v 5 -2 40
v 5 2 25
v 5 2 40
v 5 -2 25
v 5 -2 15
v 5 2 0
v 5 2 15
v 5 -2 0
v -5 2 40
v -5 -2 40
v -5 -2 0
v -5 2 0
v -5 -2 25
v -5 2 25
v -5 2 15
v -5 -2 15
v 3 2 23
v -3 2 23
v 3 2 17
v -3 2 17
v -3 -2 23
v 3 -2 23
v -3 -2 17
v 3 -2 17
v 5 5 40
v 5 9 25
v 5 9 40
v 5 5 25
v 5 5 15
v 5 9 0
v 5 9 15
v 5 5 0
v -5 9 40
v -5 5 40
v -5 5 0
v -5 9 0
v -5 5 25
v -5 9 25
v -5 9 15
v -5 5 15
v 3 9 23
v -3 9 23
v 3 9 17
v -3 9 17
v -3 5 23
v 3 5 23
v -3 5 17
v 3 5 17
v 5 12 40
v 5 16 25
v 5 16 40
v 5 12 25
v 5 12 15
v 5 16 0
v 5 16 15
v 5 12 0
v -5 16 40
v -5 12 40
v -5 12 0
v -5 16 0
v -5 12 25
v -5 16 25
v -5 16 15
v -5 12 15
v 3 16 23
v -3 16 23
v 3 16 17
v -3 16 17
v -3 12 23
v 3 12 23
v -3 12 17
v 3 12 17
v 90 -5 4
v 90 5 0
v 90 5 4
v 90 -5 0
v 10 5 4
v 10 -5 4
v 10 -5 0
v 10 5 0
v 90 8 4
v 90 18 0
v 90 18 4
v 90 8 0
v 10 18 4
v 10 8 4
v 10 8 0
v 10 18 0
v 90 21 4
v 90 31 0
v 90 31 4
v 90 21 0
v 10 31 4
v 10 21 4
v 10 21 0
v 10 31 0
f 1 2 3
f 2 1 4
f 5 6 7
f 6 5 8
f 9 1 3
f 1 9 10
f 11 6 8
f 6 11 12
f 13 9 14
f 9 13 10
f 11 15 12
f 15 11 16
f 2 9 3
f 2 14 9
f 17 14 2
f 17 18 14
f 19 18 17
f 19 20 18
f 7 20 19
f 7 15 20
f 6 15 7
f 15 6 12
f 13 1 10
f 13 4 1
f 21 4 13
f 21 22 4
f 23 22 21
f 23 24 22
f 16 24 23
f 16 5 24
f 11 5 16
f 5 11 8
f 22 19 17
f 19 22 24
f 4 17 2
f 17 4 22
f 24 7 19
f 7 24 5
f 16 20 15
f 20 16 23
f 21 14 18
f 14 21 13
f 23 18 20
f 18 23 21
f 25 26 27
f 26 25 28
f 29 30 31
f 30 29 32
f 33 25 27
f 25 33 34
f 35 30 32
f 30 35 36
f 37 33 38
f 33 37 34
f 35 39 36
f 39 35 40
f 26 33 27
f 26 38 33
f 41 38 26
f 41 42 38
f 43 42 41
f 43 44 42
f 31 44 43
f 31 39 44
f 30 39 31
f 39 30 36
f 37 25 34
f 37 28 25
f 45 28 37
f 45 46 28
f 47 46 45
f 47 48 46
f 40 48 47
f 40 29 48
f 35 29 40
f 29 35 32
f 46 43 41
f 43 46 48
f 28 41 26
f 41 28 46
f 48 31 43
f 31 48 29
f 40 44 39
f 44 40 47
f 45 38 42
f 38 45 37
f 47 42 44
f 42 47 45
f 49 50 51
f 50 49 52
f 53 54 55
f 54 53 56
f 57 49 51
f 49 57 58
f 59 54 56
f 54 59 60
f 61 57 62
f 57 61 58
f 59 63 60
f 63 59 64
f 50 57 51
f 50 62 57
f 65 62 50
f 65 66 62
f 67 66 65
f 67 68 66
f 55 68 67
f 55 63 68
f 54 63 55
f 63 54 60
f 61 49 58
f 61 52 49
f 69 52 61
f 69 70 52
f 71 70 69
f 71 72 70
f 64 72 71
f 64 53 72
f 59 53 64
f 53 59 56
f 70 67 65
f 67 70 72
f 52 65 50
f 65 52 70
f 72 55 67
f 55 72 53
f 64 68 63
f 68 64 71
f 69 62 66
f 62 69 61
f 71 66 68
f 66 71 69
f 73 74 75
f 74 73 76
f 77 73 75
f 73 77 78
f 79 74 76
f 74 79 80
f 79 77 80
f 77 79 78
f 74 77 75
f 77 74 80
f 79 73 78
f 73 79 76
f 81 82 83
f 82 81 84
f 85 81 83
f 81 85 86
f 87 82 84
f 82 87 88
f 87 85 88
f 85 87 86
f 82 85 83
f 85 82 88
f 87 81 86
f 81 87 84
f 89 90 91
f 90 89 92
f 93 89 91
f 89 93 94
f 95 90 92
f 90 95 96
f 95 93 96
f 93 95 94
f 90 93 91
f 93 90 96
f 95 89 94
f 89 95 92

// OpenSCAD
// file: ../Dollo/NEW_long_ties/globals.scad
/*
Most things in this file is represented as one millimeter, so keep that in mind while changing things.
Some of the setting are not mm but at variables that you can set, such as 2*x=2x and you are setting what x is.
I will try to specify when things are variables and not exact measurements.
*/

// printer slop
slop = 0.15;

obj_leg = 30;
leg_length = 5.5;
small_number = 0.001;
metal_core_rode_global = 5;


///////////////// number of holes /////////////////////
z_hole_number = 8;
other_holes = 8;

///////////////// Pins /////////////////////

//pins that poke out
ball_size = 10;
pin_height = 20;
pin_diameter = 6;


//holes
hole_ball_size = ball_size;
hole_pin_height = pin_height;
hole_pin_diameter = pin_diameter;

///////////////// Z THINGS /////////////////////

berring_slot_width = 7.5;
berring_slot_depth = 6.5;
metal_core_rode = 5;

///////////////// X THINGS /////////////////////

//male dove tails
male_dove_max_width=8;
male_dove_min_width=5;
male_dove_depth=5;
male_dove_height=obj_leg/2;

function scaled_male_dove_max_width() = male_dove_max_width - slop;
function scaled_male_dove_min_width() = male_dove_min_width - slop;
function scaled_male_dove_depth() = male_dove_depth - slop;

//female dove tails, this is found on the y mounts
girl_max_width=11;
girl_min_width=5;
girl_depth=5;
girl_height=obj_leg;


///////////////// Y THINGS /////////////////////
/*
The Y is so normal that all of those global variables at the top should change all of the setting in it, this section is set her incase there are variables set in the future development of this project.
*/

// stepper
motor_side_length = 43.2;
motor_bolt_hole_distance = 31;
motor_center_hole = 23;
motor_shaft_dia = 5;
motor_shaft_hole_dia = 5+2*slop;

// bolts etc.
bolt_hole_dia = 3+2*slop;
bolt_head_hole_dia = 5.8;

m4_bolt_hole_dia = 4+2*slop;
m4_bolt_head_hole_dia = 6.8+2*slop;


m3_nut_side = 5.65;
m3_nut_height = 2.3;
m4_nut_side = 6.85;
m4_nut_height = 3.1;

// threaded rod
lifter_rod_diam = 9.86;
hole_threaded_rod = lifter_rod_diam+2*slop;

// for the extensions
metal_rod_size = 9;
// main file
use <../Dollo/NEW_long_ties/include.scad>;



material_test_pieces();


module standing() {
    translate([0, 0, 40/2])
    difference() {
        cube([10, 4, 40], center=true);

        translate([10/2 + 3, 0, 0])
        chamfered_cube(10, 20, 10, 2, center=true);

        translate([-10/2 - 3, 0, 0])
        chamfered_cube(10, 20, 10, 2, center=true);
    }
}

module flat() {
    translate([0, 0, 4/2])
    cube([80, 10, 4], center=true);
}

module material_test_pieces() {

    standing();

    translate([0, 7, 0])
    standing();

    translate([0, 14, 0])
    standing();

    translate([50, 0, 0])
    flat();

    translate([50, 13, 0])
    flat();

    translate([50, 26, 0])
    flat();

}
